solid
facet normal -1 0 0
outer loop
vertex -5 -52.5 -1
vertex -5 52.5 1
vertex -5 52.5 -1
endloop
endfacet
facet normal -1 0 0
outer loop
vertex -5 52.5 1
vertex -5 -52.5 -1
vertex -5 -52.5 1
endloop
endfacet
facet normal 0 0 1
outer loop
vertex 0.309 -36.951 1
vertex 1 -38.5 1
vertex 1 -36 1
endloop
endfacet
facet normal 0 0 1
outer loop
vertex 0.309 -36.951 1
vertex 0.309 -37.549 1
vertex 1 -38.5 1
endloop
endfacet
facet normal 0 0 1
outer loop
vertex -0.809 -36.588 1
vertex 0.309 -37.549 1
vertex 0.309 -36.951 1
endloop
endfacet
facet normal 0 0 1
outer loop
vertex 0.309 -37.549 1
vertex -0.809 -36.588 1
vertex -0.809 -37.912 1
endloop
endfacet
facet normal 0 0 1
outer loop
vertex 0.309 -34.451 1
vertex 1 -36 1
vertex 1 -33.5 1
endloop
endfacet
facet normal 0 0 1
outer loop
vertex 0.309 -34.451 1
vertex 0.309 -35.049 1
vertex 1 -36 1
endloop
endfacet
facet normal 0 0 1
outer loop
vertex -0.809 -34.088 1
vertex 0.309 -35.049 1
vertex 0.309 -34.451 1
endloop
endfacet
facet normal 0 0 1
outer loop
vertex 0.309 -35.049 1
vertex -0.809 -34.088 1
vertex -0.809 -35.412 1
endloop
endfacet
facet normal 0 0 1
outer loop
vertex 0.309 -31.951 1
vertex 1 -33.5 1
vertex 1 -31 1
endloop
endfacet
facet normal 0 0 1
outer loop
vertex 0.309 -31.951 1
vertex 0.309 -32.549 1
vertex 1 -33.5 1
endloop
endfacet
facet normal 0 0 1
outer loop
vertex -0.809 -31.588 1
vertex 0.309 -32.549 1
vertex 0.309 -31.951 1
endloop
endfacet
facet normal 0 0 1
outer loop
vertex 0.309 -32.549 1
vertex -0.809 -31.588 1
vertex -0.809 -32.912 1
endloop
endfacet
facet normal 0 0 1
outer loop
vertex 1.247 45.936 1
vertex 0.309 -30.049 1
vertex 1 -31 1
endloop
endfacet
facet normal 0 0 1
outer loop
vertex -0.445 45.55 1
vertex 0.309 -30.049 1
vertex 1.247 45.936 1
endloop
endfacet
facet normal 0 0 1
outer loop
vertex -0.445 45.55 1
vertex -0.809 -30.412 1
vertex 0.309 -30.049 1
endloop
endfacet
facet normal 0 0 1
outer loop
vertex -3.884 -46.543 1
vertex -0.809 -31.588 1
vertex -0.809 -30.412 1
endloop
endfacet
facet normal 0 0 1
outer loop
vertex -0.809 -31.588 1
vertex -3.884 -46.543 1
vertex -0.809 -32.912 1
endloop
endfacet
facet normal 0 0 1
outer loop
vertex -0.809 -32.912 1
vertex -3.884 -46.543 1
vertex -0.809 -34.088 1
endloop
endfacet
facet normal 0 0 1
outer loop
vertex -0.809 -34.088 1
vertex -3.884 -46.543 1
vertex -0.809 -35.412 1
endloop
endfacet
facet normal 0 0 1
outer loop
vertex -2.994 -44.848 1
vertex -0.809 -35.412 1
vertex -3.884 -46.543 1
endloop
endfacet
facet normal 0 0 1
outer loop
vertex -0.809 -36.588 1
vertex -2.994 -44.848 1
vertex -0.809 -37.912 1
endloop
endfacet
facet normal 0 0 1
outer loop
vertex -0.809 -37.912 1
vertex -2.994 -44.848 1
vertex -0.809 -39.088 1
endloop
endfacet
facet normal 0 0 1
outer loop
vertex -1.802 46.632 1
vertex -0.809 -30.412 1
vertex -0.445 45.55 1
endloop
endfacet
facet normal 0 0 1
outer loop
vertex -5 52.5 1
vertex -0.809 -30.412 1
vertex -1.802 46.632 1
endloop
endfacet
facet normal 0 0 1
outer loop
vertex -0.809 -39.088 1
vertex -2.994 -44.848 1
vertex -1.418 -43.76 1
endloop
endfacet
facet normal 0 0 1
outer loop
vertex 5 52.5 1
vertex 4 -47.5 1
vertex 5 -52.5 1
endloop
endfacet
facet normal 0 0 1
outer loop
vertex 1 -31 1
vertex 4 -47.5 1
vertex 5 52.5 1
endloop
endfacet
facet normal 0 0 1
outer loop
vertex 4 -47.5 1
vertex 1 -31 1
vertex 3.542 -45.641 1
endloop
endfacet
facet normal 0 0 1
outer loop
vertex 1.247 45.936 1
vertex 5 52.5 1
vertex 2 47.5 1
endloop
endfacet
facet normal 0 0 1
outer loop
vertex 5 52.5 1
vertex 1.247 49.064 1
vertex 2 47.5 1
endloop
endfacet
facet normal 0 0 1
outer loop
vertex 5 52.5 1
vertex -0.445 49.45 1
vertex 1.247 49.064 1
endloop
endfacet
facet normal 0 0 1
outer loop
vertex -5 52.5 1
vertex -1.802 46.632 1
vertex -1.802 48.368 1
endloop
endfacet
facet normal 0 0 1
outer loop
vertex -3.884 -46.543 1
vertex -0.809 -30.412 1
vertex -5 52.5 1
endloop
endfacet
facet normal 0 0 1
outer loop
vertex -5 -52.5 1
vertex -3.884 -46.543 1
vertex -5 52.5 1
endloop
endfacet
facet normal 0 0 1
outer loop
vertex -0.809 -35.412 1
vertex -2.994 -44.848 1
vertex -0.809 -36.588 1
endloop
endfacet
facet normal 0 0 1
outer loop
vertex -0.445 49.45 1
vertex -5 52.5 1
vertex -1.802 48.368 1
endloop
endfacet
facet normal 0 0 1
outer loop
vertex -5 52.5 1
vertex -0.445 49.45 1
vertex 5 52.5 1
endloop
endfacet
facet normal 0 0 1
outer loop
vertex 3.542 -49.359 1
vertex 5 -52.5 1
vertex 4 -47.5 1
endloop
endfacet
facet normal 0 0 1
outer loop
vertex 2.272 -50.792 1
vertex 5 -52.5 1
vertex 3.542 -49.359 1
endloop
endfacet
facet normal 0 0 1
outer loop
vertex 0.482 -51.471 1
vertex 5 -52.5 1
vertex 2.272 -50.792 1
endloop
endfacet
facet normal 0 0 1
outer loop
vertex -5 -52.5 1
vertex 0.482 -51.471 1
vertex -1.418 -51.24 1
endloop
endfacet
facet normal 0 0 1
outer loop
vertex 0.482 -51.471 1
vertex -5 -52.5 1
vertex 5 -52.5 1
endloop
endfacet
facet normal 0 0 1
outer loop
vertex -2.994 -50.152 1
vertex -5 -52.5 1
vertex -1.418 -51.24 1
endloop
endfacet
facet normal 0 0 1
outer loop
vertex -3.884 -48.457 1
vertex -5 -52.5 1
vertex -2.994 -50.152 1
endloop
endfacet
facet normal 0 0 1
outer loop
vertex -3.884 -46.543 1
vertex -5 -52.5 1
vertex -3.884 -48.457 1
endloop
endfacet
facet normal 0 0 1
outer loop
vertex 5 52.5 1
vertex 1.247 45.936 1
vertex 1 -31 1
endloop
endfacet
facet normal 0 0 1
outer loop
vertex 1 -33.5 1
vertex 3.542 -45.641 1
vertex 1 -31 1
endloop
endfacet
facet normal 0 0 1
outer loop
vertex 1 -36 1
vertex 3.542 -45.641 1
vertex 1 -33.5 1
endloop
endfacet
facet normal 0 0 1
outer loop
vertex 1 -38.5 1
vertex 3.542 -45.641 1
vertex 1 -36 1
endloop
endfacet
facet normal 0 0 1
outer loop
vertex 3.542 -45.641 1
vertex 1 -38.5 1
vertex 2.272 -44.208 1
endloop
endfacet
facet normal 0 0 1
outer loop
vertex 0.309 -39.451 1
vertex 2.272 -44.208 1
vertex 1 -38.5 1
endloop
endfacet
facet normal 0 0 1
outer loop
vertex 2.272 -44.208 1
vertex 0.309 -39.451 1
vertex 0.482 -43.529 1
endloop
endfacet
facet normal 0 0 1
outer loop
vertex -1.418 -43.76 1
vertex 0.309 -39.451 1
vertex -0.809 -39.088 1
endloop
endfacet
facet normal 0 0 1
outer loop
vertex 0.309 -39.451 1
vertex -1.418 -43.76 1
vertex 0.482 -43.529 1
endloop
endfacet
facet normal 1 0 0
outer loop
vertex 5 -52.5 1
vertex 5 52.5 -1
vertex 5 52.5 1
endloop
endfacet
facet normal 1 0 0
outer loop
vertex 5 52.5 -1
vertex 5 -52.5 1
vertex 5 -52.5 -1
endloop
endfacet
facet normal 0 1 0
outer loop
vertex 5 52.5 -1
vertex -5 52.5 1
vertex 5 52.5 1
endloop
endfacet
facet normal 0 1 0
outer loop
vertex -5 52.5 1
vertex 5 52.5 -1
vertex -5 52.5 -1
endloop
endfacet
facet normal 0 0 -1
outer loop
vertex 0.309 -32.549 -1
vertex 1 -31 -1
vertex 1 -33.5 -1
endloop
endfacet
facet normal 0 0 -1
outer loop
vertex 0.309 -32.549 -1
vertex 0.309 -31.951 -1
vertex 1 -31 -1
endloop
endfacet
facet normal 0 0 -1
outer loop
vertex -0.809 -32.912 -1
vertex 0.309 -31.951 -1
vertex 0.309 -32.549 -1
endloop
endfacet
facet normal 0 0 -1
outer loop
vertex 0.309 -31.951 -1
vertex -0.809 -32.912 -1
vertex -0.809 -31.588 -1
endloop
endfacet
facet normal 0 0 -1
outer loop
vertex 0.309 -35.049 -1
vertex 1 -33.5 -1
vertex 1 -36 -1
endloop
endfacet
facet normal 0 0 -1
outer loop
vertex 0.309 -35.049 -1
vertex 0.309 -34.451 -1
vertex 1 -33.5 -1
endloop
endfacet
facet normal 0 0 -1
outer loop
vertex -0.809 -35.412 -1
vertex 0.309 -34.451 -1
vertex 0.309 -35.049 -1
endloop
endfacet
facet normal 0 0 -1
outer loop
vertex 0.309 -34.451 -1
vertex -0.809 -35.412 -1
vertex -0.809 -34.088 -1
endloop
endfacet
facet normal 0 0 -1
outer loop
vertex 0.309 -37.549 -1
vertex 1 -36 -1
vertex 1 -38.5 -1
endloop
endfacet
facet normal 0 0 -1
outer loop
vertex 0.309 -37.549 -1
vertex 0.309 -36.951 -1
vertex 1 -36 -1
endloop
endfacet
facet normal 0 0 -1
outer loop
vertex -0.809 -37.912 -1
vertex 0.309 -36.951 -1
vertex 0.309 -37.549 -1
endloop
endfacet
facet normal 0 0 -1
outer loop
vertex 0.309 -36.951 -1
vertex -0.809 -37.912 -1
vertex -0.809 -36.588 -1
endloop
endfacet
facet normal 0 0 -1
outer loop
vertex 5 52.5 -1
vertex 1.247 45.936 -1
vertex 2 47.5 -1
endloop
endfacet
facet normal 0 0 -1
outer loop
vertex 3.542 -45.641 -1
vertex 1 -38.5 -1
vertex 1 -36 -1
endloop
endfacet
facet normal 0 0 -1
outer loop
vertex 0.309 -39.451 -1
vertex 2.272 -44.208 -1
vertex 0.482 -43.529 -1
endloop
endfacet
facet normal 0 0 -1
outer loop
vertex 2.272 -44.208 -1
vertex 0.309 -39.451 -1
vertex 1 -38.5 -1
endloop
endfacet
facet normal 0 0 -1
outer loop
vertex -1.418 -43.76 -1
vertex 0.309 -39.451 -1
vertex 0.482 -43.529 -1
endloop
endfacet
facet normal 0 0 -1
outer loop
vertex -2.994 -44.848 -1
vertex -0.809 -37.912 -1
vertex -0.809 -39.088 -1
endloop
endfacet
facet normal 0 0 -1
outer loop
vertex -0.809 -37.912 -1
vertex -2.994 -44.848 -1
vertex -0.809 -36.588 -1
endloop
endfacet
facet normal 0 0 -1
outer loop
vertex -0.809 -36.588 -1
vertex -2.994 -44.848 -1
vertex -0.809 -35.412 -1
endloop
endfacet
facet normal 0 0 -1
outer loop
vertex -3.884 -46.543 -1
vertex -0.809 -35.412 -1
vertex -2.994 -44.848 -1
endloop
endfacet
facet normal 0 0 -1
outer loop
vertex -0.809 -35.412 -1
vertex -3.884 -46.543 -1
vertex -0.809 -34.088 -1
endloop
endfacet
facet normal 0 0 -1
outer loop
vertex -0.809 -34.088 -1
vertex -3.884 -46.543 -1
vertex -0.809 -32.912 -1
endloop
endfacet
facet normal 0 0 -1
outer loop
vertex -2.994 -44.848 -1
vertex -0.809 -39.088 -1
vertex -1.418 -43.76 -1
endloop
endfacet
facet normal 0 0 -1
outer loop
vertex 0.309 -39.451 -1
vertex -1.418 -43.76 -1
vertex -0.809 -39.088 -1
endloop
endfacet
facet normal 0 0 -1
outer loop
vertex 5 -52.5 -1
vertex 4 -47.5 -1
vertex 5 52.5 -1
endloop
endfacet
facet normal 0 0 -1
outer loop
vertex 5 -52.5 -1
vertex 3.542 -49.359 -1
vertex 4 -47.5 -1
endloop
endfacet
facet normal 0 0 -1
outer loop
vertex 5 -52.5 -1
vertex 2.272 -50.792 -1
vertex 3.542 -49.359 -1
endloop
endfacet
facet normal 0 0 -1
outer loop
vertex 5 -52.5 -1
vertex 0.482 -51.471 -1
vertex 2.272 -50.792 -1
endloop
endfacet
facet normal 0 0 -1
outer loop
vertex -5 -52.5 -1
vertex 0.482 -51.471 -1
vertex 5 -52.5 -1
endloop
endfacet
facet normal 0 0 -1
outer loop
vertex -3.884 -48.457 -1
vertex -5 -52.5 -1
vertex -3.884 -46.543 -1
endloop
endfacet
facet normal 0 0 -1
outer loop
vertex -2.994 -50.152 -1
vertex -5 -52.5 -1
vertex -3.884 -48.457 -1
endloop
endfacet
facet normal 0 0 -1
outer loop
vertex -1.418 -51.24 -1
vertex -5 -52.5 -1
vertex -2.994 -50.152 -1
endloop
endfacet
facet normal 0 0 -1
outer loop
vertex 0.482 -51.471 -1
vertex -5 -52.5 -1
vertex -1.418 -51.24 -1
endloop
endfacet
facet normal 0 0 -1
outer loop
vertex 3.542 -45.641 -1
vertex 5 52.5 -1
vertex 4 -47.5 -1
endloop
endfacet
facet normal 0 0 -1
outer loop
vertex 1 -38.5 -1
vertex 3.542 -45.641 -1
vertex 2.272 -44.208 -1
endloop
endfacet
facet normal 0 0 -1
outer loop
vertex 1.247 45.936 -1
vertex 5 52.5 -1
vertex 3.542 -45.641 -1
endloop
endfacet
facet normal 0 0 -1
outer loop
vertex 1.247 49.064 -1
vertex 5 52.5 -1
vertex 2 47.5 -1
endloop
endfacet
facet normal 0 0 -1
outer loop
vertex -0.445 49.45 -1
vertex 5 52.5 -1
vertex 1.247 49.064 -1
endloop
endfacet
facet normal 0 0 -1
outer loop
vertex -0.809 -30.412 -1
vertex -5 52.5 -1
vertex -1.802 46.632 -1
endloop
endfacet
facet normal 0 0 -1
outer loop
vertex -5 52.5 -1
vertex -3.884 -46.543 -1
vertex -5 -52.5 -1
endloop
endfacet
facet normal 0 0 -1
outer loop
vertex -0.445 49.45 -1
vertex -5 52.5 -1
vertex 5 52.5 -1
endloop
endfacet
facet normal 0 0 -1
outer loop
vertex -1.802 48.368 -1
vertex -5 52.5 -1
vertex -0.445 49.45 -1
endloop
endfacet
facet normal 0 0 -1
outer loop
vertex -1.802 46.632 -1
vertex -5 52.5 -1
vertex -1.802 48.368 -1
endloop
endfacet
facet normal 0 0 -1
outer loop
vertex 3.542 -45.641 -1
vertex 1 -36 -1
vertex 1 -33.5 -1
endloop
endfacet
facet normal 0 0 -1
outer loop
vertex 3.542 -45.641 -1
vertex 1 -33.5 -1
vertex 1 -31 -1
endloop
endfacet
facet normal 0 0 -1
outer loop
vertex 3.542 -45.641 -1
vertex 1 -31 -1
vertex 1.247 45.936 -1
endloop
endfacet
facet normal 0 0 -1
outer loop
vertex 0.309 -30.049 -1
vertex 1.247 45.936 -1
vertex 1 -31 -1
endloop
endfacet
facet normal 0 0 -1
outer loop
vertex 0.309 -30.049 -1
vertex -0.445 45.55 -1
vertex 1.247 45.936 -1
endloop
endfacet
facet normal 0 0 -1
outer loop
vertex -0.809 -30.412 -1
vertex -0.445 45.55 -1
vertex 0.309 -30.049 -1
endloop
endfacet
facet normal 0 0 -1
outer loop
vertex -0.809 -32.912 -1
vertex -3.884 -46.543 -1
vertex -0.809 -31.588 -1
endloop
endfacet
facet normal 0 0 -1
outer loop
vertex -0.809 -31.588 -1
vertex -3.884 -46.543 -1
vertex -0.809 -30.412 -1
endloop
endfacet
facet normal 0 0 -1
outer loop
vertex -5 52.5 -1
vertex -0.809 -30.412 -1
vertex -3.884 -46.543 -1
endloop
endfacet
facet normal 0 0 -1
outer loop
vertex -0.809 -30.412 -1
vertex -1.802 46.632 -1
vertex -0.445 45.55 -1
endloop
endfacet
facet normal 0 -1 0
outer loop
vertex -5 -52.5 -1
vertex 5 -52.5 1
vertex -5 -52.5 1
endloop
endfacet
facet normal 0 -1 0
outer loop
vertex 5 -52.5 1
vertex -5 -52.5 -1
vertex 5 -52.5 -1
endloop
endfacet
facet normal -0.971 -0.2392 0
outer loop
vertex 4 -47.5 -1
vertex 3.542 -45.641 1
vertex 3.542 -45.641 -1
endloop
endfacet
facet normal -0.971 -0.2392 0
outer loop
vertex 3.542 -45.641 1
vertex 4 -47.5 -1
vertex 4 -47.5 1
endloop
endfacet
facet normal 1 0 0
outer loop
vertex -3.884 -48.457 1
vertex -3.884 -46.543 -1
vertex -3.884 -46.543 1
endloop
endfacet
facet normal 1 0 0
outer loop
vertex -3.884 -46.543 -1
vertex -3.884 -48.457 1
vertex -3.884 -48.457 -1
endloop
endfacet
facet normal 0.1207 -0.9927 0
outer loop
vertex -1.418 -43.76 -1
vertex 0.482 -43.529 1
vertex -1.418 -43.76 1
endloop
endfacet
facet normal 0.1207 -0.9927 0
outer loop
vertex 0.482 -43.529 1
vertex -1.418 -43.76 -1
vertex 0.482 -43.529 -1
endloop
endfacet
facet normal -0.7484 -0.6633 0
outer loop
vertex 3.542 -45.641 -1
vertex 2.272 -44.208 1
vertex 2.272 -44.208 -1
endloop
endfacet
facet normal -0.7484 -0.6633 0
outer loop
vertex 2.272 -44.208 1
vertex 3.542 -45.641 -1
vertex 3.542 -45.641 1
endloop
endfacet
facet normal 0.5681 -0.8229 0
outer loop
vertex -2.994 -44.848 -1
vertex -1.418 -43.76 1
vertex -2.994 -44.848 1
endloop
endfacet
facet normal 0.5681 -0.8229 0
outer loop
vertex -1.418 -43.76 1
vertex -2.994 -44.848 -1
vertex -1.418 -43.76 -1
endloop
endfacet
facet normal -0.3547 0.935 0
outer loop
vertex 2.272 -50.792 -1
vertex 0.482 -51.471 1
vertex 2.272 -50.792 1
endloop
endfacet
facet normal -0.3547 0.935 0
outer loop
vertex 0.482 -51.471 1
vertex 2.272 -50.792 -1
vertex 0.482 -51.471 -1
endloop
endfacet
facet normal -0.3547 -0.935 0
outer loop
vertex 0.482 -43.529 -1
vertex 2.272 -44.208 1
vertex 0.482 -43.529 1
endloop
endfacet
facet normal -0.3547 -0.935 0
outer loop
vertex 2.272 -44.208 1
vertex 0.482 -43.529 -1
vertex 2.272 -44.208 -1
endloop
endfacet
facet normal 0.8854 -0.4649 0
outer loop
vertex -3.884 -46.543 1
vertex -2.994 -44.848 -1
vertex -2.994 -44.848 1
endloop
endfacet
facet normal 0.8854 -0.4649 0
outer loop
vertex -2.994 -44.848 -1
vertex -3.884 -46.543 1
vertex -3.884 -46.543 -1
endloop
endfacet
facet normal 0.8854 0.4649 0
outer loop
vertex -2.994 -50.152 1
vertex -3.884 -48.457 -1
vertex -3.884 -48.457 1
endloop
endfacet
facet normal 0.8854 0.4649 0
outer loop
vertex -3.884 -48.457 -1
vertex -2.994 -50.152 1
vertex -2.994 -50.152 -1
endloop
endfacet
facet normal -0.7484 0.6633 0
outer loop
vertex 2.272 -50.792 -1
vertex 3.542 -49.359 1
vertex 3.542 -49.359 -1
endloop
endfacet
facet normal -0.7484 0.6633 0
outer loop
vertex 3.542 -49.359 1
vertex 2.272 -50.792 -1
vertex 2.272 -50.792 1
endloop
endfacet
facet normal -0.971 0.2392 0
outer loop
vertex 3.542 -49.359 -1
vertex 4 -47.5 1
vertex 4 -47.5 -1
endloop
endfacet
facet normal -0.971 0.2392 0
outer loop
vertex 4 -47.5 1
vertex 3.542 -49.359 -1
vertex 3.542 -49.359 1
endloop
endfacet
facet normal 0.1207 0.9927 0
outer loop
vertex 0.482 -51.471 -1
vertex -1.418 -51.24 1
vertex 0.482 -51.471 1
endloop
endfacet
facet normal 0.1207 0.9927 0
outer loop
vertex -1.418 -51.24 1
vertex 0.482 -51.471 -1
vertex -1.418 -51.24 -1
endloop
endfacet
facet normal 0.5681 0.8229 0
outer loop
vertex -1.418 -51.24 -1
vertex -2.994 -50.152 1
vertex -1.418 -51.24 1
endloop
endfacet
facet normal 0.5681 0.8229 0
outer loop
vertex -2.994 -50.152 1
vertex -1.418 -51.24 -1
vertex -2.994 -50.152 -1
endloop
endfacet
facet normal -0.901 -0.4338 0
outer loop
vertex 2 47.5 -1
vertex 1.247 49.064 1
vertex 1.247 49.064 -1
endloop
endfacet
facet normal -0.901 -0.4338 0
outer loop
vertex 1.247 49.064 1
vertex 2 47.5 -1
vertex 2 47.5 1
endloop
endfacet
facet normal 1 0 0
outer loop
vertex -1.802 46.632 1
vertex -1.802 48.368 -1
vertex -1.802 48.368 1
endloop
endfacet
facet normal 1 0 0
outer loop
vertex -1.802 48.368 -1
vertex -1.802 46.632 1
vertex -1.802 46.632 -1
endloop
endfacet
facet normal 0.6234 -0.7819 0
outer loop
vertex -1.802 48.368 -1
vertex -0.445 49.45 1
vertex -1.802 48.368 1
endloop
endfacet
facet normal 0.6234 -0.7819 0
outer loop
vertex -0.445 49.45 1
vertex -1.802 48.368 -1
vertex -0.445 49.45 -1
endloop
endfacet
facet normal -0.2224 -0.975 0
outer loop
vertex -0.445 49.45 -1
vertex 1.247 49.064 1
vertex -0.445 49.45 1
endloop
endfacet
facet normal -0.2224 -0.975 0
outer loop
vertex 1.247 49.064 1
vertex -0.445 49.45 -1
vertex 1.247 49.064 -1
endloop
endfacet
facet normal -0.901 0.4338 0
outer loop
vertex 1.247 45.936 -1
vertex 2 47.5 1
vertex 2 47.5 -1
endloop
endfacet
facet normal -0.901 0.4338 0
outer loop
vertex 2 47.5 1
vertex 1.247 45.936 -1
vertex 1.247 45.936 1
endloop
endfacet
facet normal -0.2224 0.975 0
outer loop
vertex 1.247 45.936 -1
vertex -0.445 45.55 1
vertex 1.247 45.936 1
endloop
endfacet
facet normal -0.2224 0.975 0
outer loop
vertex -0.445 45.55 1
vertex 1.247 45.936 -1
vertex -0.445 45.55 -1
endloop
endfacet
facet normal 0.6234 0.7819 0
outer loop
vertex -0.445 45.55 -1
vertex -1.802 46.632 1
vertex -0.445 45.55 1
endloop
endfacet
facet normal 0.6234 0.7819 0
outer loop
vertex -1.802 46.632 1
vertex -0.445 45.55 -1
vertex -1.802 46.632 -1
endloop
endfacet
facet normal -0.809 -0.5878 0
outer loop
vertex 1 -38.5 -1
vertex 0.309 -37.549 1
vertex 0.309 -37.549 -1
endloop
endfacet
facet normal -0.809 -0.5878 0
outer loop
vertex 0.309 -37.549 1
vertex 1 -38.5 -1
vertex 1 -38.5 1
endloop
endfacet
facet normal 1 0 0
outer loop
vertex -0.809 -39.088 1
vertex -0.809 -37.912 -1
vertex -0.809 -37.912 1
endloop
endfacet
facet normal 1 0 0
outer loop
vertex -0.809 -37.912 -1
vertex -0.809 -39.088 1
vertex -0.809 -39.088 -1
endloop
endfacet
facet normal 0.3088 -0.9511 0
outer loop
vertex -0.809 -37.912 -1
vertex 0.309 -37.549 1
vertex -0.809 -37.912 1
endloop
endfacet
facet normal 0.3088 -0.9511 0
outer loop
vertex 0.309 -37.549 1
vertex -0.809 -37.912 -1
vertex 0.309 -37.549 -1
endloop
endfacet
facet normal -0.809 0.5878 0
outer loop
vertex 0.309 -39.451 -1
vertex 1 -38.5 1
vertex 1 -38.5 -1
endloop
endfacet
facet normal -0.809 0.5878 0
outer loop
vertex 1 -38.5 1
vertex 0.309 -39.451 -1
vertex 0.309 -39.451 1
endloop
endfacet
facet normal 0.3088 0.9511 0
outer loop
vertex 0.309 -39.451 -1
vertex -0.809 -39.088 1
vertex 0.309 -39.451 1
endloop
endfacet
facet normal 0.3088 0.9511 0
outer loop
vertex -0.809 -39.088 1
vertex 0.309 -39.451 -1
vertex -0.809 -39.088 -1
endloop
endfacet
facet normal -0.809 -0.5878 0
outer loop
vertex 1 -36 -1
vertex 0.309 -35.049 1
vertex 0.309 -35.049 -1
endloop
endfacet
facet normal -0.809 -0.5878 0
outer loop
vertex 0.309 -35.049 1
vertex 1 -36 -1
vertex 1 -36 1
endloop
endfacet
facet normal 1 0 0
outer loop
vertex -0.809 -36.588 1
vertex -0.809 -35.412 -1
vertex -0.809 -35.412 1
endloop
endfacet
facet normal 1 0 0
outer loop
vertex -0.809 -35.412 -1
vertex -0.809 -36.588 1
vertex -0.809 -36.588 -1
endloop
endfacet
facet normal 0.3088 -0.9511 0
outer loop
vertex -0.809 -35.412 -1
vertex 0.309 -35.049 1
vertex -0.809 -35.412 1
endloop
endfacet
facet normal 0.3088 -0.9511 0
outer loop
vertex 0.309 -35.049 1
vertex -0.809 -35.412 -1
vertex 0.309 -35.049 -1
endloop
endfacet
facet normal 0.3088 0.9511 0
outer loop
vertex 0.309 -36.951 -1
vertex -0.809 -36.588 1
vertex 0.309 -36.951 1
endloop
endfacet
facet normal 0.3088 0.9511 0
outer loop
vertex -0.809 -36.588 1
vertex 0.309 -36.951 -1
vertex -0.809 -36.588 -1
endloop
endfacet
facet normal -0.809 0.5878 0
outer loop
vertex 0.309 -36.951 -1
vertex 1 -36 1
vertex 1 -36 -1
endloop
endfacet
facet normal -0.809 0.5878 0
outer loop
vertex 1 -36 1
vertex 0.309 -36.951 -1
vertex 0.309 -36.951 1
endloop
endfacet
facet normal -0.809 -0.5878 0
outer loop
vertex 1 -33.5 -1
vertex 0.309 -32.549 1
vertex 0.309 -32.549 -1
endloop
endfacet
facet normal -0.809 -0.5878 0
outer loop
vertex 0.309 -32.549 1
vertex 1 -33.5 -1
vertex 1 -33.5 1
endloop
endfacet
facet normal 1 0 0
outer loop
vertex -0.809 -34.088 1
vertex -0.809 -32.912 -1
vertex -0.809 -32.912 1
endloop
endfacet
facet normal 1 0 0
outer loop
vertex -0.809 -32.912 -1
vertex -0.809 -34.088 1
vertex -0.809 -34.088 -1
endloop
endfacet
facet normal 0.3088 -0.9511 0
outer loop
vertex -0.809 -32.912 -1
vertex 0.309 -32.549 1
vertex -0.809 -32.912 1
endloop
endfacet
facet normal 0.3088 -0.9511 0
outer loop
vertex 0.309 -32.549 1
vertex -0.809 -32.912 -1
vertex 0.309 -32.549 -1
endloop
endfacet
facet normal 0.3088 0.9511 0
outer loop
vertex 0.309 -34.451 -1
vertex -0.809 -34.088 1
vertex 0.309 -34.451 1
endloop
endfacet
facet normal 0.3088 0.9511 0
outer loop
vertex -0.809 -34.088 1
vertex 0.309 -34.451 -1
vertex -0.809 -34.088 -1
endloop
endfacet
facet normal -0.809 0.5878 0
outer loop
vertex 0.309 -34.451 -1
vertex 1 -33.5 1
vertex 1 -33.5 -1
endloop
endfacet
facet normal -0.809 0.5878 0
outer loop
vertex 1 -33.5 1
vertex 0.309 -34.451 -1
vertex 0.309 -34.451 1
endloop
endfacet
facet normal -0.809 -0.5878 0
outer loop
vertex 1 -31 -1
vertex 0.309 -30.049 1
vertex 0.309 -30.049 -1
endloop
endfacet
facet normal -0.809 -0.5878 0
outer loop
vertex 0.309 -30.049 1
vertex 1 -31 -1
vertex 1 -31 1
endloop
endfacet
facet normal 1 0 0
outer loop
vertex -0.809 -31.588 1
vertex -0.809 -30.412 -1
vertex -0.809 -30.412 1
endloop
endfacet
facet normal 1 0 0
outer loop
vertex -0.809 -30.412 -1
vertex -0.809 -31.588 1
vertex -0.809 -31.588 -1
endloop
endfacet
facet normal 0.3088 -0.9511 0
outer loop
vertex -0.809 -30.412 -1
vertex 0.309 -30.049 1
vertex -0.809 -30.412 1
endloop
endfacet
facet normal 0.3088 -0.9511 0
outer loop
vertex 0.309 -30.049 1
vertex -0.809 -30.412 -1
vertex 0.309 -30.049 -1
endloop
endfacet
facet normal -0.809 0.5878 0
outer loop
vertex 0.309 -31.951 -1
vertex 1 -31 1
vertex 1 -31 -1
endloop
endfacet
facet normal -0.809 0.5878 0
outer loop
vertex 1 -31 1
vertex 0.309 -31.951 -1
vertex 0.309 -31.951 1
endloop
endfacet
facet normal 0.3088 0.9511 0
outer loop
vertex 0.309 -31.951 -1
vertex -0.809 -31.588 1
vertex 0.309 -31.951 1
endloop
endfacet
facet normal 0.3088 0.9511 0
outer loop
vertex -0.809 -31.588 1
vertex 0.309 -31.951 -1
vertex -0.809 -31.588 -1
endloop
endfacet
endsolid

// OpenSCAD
difference(){
    // Servo lever base
    scale([10,105,2]) cube(1,1,1, center=true);
    
    margin = 47.5;
    // Servo screwing hole
    translate([0,-margin,0]) cylinder(d=8,h=10, center=true);
    
    // Claw pulling hook
    translate([0,margin,0]) cylinder(d=4,h=10, center=true);
    
    // Servo lever fasteners
    translate([0,-margin+9,0]) cylinder(d=2,h=10, center=true);
    translate([0,-margin+11.5,0]) cylinder(d=2,h=10, center=true);
    translate([0,-margin+14,0]) cylinder(d=2,h=10, center=true);
    translate([0,-margin+16.5,0]) cylinder(d=2,h=10, center=true);
}
